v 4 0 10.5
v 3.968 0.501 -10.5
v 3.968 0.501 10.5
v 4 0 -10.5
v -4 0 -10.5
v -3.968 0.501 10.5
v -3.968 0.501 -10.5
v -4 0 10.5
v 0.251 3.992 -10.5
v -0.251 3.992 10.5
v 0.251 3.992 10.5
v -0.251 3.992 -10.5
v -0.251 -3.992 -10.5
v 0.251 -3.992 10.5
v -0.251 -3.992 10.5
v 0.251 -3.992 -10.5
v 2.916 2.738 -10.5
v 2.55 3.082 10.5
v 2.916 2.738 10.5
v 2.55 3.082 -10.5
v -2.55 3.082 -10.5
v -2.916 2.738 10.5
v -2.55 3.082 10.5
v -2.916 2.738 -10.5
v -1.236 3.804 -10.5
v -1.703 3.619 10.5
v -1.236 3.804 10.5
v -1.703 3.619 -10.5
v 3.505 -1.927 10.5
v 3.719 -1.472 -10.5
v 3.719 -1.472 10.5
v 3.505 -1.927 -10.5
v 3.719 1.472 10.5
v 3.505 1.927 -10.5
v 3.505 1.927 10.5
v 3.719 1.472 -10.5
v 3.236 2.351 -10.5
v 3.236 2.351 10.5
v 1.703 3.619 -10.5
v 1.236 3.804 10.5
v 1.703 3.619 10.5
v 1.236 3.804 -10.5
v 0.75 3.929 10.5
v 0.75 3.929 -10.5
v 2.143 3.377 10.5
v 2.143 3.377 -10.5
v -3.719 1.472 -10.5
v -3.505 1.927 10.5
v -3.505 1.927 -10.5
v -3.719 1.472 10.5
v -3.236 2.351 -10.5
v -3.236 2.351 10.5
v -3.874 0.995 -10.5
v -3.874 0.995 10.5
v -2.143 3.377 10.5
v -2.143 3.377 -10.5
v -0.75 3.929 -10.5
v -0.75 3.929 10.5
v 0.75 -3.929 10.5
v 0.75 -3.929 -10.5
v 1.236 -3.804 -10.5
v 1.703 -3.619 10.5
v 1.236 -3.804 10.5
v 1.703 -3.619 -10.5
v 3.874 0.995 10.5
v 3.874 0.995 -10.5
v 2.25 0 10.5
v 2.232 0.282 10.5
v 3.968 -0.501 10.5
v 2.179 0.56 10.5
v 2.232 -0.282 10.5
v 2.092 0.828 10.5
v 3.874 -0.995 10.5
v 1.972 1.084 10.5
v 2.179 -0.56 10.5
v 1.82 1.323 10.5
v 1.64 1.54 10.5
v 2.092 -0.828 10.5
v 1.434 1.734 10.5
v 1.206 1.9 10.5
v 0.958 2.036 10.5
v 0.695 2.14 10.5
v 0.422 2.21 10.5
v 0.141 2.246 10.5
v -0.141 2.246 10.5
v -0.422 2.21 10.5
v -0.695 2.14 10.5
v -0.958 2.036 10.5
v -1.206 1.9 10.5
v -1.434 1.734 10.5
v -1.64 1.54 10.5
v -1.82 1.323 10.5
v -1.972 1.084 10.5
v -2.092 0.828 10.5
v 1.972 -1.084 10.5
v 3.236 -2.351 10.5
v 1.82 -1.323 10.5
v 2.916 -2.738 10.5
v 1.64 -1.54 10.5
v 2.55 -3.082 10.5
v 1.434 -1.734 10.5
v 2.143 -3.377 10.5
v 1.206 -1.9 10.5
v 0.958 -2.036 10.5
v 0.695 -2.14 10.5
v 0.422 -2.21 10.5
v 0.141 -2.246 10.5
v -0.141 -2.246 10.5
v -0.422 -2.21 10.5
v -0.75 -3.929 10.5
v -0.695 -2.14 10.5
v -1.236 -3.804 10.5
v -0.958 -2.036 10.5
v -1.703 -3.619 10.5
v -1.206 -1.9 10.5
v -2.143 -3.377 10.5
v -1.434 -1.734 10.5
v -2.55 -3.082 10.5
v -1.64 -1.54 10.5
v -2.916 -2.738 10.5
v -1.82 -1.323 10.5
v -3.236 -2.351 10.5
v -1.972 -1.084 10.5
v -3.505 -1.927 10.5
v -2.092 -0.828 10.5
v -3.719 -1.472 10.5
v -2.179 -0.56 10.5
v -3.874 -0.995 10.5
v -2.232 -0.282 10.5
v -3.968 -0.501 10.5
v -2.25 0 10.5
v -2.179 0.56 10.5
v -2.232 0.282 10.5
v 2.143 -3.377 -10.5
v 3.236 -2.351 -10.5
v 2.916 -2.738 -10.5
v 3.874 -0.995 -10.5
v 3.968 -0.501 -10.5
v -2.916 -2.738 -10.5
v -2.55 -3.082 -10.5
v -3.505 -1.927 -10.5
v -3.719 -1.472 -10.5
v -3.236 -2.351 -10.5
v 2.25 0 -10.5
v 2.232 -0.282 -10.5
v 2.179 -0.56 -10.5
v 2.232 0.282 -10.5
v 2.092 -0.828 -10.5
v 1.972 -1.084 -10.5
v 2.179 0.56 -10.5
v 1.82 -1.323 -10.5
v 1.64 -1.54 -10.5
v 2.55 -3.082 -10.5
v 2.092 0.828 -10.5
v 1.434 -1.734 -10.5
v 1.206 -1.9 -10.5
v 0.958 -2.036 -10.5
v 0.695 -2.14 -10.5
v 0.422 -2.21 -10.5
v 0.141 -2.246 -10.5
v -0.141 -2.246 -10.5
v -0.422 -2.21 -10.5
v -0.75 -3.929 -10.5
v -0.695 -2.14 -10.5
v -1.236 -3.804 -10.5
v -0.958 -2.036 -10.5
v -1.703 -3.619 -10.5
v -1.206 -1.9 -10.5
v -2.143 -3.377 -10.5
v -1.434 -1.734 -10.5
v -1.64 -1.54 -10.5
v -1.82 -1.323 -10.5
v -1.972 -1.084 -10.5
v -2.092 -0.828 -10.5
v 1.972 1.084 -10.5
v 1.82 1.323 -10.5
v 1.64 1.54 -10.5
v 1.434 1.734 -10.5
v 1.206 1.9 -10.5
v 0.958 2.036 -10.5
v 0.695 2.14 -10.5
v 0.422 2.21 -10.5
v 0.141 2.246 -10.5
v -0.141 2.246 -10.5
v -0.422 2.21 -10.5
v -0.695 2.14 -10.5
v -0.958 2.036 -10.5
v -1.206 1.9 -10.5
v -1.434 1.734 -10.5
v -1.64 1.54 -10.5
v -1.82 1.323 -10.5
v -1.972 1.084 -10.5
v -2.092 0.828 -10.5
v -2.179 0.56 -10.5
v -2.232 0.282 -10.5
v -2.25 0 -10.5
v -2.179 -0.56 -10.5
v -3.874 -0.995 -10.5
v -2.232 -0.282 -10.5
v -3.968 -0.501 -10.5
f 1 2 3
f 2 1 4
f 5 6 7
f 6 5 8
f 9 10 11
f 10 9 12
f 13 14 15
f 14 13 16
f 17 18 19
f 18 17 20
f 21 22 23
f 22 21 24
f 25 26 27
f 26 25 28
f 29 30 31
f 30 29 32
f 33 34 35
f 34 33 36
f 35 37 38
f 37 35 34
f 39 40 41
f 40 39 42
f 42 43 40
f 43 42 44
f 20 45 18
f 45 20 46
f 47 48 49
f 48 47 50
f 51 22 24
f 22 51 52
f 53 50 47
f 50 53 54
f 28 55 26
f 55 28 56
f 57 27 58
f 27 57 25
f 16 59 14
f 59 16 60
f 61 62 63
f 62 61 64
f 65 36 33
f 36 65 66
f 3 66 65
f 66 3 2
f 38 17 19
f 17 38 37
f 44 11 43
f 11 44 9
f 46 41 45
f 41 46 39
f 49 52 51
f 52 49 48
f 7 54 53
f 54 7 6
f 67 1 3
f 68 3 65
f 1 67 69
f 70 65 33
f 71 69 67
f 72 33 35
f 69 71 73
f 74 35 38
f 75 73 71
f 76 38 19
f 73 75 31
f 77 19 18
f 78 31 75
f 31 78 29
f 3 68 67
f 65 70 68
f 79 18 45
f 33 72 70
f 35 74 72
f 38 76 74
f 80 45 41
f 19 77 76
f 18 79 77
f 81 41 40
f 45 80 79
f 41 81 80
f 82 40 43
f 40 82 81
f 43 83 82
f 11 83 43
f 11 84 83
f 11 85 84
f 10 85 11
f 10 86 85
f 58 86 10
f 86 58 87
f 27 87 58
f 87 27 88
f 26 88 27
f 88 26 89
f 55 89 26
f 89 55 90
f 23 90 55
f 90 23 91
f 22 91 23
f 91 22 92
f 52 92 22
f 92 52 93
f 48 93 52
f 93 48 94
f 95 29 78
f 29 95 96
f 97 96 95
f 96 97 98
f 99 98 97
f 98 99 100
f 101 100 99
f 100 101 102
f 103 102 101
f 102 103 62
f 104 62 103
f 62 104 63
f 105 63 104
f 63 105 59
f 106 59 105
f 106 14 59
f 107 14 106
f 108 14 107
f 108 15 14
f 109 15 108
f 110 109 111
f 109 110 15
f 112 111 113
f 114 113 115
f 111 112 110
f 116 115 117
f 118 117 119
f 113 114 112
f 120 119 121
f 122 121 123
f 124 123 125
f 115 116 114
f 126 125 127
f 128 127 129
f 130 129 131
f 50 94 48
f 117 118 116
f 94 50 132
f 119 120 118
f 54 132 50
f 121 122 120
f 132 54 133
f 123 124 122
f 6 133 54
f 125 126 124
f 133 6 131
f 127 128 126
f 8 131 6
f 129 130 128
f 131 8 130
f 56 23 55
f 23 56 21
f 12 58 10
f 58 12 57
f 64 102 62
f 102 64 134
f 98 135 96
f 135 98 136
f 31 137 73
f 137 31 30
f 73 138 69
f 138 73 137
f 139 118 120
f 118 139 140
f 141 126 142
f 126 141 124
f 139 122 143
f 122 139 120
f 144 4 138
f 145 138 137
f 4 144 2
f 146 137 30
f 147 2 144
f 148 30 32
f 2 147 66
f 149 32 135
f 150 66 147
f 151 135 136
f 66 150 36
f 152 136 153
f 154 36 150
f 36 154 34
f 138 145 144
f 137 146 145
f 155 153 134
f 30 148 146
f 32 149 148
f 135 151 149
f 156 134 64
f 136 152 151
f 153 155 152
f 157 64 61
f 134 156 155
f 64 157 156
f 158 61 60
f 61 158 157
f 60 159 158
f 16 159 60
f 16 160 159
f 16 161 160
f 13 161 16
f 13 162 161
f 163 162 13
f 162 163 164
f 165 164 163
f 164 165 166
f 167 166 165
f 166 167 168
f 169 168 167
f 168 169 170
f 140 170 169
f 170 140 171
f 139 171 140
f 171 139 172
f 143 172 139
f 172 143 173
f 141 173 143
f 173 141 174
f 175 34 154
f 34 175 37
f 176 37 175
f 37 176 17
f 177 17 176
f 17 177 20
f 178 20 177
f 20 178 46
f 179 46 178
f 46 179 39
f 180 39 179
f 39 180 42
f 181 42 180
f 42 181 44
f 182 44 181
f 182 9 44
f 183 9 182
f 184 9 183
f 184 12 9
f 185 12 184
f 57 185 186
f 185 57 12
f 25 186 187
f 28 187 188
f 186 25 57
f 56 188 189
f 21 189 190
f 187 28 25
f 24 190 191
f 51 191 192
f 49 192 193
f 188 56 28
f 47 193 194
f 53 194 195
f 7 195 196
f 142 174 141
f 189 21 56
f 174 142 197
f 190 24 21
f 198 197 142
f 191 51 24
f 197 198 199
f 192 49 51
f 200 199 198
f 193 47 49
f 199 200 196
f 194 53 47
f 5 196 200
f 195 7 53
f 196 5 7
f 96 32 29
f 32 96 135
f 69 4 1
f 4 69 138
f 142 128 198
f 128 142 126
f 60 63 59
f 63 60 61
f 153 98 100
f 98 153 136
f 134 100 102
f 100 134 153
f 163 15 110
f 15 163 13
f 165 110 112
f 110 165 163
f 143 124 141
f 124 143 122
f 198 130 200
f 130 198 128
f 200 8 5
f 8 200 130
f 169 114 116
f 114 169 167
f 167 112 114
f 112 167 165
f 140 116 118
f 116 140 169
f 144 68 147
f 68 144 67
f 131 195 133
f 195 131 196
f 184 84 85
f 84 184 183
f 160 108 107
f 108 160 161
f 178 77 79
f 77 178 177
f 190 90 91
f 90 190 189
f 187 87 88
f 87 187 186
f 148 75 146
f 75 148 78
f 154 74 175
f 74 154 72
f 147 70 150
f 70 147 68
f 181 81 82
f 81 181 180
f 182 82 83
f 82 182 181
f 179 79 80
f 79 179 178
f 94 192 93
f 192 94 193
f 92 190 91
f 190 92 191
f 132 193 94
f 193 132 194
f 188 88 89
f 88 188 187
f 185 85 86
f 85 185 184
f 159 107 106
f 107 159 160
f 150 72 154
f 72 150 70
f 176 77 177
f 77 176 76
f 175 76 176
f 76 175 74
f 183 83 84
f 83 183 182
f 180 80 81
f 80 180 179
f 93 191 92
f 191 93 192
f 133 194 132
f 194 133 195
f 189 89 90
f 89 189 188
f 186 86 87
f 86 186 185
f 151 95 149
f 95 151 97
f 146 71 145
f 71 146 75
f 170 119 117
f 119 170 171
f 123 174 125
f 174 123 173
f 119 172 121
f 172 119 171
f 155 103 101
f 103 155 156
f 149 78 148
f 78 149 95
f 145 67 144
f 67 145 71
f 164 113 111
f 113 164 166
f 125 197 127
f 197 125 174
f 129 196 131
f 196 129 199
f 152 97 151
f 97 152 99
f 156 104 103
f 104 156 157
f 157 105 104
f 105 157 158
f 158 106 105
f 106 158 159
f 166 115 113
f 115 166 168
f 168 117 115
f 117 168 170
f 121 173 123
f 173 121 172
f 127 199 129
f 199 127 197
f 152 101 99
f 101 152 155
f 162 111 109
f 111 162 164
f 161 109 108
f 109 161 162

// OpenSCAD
$fn = 50;


difference() {
	union() {
		translate(v = [0, 0, -10.5000000000]) {
			cylinder(h = 21, r = 4.0000000000);
		}
	}
	union() {
		translate(v = [0, 0, -100.0000000000]) {
			cylinder(h = 200, r = 2.2500000000);
		}
	}
}
